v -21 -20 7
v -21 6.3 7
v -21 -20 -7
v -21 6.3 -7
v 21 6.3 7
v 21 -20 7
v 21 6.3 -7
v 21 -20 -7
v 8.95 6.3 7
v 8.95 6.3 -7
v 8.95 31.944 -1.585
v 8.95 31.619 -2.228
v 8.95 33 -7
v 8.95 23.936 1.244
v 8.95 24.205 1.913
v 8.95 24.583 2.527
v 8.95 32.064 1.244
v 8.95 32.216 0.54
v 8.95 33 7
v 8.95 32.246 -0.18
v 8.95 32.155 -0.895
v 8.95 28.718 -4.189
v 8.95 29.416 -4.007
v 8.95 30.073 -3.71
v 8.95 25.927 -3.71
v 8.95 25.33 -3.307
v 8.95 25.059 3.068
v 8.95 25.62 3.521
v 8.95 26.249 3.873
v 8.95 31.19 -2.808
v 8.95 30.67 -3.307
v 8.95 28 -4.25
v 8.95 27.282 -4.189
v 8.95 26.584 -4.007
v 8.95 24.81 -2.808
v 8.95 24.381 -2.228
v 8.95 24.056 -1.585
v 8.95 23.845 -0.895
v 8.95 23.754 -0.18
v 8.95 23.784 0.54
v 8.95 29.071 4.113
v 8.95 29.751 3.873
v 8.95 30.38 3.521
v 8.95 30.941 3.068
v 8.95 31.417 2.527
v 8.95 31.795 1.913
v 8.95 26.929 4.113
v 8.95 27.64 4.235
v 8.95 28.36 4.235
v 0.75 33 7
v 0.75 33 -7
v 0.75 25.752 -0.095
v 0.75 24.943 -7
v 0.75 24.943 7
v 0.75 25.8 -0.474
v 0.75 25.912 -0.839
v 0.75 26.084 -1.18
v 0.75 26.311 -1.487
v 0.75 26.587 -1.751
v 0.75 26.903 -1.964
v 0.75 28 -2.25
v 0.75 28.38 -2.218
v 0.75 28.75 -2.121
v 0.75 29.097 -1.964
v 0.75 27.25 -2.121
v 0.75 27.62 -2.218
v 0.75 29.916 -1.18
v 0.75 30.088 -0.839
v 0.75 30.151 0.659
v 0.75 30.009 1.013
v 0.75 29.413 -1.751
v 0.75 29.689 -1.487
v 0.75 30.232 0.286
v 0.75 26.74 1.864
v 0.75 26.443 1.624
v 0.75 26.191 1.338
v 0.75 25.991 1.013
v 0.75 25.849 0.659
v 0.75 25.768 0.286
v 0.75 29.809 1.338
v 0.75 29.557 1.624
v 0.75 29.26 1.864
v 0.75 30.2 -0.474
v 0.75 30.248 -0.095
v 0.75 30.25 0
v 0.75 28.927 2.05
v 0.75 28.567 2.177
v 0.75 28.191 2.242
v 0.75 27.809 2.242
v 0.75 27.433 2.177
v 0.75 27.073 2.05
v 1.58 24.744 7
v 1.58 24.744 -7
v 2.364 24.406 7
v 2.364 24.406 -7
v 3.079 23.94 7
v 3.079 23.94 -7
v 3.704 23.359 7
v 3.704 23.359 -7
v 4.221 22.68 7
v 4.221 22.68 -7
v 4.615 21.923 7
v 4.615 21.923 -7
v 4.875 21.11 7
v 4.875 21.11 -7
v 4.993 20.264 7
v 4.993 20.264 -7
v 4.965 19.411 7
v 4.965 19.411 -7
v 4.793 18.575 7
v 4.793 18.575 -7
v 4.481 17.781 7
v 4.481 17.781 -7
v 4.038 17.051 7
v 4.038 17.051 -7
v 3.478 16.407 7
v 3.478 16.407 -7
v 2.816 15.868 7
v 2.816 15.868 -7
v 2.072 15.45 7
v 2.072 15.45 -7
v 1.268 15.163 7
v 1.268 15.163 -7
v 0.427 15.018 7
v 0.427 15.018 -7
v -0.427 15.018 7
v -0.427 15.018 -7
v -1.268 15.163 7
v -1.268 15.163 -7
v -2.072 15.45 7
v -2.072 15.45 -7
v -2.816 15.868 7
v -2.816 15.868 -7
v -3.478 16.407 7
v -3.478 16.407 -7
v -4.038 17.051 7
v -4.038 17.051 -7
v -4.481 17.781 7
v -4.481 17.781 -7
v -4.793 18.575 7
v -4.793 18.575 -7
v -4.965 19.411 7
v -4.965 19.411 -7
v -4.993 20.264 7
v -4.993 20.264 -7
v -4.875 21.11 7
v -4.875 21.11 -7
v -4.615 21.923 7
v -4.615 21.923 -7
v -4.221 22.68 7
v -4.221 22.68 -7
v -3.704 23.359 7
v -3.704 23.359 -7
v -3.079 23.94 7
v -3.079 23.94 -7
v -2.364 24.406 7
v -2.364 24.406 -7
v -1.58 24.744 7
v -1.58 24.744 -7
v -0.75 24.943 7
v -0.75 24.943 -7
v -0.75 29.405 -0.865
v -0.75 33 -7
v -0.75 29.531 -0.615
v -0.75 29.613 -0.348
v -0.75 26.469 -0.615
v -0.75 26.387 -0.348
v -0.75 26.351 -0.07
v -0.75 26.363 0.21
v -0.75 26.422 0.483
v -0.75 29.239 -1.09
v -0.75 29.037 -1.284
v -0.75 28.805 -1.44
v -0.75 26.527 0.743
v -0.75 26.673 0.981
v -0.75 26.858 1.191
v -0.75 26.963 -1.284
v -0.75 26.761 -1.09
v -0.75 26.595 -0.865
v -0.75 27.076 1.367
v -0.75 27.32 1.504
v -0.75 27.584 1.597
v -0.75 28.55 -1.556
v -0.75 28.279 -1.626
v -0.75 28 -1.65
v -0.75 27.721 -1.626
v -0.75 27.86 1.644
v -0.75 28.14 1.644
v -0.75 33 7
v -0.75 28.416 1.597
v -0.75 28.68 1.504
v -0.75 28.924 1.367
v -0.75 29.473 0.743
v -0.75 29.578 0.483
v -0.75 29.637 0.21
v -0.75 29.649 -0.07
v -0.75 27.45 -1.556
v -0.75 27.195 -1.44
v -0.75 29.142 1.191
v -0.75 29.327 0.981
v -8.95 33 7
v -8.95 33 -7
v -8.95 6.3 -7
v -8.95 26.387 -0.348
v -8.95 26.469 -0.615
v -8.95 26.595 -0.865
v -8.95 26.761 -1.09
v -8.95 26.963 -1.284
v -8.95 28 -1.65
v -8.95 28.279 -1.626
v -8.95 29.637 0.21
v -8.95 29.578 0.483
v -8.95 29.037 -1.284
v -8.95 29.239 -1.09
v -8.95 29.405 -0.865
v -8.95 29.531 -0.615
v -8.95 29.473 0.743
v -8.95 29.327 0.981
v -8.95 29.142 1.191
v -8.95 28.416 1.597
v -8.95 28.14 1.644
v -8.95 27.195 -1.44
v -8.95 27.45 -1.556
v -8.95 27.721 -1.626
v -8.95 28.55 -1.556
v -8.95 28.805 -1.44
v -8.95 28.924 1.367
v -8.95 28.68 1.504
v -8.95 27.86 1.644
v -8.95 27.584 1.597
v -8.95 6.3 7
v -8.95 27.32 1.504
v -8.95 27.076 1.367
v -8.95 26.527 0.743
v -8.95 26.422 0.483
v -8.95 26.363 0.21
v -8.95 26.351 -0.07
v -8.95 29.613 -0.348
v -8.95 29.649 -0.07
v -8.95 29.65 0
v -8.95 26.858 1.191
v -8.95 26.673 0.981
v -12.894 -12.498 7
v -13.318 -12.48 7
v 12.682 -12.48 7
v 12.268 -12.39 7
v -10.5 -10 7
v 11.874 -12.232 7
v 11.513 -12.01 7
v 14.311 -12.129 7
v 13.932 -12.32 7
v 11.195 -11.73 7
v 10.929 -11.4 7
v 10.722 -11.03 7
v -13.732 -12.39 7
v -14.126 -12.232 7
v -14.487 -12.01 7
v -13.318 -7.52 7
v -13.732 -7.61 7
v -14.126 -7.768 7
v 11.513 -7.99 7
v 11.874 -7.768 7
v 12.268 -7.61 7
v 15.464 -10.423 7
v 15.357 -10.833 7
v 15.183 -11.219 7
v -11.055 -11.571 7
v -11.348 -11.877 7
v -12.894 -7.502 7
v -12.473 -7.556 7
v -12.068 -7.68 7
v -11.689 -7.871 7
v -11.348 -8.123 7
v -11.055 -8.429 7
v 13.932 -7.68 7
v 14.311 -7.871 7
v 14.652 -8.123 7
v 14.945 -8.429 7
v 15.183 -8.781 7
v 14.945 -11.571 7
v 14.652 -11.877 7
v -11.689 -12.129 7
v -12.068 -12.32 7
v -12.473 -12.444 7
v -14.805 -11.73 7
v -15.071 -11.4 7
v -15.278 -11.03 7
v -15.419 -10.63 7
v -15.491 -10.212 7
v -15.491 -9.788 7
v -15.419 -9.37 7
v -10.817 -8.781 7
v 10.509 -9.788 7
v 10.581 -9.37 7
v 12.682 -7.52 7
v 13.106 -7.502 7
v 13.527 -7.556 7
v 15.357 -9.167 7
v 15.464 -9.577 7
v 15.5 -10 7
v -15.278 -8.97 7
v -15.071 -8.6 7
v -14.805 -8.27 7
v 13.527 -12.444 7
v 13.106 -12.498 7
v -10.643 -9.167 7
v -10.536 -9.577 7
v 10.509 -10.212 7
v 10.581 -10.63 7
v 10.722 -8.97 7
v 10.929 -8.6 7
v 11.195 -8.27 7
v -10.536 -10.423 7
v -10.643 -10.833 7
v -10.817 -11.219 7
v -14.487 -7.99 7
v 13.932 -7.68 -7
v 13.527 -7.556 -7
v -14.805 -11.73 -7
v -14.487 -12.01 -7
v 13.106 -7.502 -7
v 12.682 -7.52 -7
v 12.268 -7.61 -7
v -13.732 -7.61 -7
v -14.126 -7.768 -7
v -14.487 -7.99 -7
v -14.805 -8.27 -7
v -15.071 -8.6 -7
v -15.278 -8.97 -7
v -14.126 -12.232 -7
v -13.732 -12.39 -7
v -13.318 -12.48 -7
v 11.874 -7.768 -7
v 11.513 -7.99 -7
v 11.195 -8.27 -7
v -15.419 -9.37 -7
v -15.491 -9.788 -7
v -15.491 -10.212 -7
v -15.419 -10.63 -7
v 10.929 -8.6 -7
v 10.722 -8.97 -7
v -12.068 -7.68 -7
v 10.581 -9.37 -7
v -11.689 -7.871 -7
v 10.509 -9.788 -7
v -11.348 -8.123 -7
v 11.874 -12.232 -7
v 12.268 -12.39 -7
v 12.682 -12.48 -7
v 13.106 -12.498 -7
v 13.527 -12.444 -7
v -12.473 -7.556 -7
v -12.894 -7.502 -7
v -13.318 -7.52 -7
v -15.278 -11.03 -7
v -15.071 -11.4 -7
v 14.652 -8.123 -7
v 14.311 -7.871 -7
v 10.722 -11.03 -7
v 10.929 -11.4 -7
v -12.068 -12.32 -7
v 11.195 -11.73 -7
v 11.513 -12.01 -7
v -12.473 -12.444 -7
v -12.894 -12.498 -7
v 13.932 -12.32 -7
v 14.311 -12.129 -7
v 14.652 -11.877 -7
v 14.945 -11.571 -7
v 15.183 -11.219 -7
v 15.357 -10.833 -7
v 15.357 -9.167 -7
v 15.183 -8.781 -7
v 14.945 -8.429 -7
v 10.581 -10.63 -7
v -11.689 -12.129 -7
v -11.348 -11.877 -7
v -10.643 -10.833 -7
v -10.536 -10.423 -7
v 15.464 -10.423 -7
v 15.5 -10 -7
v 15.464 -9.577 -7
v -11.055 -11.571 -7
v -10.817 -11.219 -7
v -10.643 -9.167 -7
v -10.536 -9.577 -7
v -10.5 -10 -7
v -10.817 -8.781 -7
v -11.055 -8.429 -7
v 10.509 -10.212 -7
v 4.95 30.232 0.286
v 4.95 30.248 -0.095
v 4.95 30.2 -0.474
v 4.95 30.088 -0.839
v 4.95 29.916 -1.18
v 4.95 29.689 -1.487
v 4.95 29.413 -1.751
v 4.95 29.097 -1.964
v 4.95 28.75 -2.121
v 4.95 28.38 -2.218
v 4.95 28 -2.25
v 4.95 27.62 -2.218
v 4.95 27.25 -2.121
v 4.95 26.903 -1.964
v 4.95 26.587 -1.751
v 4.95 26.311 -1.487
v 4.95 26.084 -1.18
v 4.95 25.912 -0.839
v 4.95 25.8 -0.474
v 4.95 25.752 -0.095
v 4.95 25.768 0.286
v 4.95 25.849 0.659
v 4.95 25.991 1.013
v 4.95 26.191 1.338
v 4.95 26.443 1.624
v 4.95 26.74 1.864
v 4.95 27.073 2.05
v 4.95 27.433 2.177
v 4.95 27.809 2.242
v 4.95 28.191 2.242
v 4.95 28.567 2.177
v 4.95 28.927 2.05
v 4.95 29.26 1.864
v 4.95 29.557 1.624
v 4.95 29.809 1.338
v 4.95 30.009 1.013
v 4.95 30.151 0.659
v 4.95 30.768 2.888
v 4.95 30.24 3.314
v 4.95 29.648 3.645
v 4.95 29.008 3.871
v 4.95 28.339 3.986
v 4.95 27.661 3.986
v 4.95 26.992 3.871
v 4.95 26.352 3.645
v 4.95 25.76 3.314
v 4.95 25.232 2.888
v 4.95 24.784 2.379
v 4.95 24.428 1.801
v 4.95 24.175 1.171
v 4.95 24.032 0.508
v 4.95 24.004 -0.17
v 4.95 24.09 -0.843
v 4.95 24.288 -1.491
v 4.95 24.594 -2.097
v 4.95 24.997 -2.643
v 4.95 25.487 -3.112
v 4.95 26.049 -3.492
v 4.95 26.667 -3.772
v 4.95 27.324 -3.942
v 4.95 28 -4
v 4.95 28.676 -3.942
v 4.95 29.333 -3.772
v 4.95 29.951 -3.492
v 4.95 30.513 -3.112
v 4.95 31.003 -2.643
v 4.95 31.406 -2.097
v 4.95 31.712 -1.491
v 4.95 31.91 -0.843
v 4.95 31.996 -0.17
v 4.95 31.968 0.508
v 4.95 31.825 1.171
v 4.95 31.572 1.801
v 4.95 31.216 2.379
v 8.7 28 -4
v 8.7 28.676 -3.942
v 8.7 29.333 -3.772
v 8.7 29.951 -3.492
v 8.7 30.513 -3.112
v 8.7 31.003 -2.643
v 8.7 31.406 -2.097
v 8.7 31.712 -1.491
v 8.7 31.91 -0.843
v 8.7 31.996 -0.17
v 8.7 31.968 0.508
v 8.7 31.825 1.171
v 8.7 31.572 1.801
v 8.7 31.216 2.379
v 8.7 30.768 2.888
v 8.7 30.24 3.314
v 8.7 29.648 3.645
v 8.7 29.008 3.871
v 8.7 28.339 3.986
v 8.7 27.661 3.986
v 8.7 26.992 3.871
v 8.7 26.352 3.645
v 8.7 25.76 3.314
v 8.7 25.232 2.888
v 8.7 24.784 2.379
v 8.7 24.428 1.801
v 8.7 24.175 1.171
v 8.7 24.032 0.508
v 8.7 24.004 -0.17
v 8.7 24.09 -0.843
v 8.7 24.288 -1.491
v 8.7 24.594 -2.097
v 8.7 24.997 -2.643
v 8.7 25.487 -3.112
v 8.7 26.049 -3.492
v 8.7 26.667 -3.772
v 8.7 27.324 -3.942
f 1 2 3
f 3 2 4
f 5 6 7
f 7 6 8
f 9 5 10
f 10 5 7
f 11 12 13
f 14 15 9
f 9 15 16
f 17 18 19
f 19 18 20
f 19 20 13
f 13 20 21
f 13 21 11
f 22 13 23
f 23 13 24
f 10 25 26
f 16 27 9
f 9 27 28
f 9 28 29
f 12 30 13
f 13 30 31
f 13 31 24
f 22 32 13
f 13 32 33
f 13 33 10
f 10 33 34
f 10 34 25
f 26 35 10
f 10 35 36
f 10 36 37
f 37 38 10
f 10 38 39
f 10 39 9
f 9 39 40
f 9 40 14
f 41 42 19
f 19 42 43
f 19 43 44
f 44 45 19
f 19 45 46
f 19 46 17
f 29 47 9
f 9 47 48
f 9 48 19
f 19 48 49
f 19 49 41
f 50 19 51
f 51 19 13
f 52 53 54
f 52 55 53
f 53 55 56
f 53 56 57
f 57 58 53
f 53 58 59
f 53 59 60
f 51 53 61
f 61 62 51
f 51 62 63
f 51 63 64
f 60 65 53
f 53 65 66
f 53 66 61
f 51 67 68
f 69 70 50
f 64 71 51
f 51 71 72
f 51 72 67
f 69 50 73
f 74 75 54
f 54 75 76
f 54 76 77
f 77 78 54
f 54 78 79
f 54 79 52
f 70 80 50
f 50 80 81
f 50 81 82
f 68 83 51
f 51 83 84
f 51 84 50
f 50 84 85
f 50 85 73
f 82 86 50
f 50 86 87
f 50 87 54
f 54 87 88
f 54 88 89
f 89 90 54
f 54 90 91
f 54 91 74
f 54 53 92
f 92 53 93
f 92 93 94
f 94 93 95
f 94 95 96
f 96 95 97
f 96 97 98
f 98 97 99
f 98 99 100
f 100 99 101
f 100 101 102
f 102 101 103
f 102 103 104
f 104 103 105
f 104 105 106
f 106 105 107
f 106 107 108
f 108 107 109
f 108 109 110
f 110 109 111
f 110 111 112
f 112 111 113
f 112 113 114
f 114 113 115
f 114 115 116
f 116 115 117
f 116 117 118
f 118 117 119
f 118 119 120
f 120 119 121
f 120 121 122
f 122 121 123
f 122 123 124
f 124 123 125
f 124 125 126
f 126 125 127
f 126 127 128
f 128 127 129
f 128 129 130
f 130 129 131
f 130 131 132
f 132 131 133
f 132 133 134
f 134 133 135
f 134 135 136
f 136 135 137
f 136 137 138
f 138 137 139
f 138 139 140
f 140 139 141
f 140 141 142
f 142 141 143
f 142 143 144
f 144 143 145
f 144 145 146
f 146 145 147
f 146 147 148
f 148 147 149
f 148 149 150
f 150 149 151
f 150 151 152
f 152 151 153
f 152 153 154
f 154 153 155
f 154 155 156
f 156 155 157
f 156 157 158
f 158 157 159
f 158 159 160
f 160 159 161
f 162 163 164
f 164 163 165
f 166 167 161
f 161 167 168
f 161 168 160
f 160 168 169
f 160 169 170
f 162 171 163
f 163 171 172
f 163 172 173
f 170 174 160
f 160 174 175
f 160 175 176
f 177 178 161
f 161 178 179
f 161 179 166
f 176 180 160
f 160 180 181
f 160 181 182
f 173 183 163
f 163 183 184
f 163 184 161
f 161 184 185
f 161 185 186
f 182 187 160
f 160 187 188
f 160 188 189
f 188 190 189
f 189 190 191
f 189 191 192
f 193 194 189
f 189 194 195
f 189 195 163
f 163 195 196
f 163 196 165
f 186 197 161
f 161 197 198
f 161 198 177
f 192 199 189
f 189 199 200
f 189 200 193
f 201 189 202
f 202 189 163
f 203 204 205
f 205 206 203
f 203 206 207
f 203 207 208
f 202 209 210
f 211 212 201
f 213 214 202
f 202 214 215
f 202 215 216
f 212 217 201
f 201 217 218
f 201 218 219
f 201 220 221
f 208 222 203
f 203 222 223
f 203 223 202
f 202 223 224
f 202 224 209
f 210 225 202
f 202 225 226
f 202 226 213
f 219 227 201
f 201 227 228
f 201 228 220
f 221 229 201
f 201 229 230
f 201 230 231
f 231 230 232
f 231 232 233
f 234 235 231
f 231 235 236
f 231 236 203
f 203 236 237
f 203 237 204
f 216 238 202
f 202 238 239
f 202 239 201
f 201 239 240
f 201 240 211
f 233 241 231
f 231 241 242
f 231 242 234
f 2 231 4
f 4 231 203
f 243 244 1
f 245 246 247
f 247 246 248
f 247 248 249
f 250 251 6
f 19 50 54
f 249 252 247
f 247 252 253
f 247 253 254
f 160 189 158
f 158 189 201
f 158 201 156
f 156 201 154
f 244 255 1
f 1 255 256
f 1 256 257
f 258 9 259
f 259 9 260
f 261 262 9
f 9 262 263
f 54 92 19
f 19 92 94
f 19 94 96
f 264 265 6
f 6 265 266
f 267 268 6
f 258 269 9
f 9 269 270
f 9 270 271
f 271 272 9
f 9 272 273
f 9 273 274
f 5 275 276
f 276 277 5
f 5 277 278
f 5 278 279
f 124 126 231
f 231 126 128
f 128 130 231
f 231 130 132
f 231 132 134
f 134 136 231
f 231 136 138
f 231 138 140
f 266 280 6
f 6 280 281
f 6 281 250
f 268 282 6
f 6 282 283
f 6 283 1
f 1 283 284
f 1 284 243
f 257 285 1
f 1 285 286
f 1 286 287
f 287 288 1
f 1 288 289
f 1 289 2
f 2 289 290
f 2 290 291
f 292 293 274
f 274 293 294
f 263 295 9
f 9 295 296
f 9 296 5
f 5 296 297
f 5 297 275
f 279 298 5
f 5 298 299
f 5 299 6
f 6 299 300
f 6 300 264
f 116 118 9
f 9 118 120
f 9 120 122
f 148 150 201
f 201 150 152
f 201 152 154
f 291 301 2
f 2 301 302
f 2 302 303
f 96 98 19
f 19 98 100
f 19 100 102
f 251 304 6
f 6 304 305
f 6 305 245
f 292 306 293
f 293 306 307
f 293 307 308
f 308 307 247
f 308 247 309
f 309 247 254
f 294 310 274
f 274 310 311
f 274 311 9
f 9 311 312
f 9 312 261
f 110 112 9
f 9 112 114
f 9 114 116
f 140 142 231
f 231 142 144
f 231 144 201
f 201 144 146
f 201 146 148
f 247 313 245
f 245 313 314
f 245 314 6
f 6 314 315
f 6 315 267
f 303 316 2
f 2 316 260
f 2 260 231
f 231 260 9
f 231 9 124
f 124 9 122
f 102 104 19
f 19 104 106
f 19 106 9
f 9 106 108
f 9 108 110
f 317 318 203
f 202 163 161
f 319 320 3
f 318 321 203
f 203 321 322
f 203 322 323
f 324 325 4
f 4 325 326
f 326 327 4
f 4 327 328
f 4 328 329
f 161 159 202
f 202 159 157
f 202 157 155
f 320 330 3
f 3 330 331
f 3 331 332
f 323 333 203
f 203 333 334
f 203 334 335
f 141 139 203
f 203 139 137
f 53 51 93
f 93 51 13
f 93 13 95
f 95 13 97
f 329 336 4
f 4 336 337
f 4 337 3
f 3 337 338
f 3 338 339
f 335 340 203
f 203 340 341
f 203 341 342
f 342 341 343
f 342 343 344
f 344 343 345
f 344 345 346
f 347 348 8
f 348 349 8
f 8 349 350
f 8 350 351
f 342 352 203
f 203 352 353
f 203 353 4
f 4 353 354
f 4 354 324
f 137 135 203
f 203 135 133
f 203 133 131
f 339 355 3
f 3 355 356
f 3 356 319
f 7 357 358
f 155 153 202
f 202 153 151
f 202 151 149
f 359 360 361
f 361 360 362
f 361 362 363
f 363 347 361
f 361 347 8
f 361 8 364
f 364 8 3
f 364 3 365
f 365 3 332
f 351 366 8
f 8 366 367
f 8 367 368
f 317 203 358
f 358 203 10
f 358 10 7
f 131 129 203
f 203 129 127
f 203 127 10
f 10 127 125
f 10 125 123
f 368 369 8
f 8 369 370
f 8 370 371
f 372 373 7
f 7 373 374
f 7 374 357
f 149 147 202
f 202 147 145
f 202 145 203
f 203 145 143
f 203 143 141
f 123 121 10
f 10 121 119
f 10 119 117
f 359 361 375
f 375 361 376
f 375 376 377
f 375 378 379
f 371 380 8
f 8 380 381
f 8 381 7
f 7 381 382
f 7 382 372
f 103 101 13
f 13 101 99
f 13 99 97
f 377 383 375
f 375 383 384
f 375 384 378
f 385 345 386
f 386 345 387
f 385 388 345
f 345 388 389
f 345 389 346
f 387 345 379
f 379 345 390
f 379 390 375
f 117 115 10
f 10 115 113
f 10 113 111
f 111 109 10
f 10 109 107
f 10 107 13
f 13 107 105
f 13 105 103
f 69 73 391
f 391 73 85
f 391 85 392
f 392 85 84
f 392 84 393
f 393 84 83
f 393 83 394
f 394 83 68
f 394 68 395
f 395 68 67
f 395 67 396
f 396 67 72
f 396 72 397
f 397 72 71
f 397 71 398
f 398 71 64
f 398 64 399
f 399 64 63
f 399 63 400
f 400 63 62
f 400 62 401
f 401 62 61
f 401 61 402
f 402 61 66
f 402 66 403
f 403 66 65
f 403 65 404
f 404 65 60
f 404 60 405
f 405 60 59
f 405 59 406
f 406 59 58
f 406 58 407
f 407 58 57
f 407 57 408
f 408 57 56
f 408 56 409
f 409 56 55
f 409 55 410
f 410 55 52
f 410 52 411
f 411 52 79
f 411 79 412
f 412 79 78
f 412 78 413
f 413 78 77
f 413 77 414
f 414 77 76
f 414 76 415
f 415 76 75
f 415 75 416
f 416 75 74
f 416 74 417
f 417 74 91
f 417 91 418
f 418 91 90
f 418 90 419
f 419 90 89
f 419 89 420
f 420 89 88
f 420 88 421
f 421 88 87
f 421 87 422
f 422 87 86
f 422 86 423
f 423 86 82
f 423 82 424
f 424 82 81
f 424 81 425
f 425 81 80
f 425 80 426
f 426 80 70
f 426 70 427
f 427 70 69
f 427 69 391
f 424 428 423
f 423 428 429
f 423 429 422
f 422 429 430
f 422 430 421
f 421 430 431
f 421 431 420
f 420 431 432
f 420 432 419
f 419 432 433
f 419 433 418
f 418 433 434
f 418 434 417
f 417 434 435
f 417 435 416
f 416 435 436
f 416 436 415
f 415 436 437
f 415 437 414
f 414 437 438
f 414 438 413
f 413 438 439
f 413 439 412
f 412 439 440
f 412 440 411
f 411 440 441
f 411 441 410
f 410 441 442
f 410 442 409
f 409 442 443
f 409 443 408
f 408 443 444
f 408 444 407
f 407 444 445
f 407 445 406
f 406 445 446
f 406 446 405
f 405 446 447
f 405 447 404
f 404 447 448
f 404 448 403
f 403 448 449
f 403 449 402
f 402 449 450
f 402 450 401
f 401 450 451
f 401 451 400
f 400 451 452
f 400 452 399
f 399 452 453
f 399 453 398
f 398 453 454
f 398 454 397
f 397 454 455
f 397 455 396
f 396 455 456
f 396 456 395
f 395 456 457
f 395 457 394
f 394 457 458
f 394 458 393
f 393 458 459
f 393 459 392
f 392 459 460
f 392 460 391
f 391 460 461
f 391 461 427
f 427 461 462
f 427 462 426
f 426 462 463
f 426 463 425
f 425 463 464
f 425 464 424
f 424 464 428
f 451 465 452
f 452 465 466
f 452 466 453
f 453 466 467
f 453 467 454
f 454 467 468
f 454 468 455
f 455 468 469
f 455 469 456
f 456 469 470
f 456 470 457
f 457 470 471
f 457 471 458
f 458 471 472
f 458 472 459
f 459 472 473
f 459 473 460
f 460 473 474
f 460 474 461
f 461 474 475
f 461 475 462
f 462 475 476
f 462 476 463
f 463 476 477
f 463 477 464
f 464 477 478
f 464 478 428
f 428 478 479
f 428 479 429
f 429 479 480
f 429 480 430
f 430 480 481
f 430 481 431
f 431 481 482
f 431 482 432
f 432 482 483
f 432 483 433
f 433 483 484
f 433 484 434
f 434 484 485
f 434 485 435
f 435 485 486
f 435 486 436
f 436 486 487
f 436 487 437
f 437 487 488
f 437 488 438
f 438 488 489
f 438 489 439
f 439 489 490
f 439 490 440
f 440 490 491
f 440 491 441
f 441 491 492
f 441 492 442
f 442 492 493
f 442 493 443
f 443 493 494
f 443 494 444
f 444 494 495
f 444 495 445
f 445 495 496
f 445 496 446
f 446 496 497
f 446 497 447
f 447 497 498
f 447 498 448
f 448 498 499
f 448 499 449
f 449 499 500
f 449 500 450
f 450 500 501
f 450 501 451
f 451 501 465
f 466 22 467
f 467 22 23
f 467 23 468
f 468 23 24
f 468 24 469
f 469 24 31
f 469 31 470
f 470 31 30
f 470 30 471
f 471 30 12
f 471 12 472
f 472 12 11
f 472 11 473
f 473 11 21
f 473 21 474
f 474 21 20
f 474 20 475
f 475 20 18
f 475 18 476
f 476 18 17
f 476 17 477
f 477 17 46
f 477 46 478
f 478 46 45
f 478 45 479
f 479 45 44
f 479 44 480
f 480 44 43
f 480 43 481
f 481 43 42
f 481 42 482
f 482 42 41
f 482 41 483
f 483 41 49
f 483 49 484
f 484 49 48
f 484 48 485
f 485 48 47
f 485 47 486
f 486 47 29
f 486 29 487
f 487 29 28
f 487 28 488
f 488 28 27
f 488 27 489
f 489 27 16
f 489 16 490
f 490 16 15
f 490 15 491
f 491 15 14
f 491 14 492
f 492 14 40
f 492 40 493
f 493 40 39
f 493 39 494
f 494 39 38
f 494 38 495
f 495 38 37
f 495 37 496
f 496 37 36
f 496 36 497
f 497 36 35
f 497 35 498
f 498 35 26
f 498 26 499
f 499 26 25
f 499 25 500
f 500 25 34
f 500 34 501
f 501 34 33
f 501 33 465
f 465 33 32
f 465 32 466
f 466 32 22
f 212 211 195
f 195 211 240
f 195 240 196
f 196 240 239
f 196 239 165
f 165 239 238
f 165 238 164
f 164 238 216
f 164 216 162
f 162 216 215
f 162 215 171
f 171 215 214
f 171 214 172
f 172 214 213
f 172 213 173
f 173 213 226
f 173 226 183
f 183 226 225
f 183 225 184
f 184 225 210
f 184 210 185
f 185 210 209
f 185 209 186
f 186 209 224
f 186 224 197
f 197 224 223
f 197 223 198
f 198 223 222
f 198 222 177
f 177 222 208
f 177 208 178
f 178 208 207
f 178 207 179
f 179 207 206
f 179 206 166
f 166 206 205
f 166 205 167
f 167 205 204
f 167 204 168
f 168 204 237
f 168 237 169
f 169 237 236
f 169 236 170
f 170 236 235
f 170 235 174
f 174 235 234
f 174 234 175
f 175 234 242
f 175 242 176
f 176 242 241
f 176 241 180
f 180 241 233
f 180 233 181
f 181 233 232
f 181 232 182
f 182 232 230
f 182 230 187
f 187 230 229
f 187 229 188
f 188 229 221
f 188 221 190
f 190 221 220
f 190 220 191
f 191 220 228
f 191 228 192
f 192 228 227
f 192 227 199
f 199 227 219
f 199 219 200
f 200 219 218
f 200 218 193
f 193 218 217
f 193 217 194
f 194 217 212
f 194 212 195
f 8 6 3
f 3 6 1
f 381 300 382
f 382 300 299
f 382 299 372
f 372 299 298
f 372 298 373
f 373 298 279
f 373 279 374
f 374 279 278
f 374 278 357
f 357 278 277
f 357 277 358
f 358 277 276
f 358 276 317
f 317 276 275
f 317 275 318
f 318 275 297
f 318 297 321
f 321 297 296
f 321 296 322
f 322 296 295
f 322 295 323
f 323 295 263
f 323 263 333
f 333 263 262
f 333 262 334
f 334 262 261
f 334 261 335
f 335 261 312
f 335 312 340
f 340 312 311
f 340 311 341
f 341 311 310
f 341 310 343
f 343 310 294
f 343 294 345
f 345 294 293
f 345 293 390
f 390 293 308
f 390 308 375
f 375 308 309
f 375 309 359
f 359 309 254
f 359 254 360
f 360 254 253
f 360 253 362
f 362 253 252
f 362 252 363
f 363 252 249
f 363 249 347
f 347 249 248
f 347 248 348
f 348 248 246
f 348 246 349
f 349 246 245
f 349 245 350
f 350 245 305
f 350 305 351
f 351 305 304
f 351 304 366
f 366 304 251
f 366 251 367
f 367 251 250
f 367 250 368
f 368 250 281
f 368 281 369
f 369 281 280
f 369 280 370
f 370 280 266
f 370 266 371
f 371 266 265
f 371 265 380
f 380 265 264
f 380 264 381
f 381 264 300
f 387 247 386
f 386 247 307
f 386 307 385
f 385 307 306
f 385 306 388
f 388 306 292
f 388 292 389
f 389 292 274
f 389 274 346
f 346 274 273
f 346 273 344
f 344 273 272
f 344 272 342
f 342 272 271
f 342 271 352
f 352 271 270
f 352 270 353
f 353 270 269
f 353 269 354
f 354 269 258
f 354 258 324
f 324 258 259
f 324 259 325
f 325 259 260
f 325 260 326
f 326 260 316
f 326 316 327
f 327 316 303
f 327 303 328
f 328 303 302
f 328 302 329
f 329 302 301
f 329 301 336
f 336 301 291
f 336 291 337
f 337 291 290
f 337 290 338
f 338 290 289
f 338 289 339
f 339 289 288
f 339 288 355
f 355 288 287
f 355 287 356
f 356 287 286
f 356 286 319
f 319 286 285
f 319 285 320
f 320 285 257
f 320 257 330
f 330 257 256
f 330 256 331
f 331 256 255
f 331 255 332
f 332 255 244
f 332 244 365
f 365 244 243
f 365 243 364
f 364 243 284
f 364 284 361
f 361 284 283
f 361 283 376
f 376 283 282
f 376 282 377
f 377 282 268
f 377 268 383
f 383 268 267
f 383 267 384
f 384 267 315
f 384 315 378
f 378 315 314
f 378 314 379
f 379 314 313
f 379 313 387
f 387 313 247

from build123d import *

# Parameters (mm, degrees)
BOSS_EXTRUDE1_DEPTH   = 7
M4X0_7_TAPPED_HOLE1_D = 3.3
SKETCH7_W             = 42
SKETCH7_H             = 14
BOSS_EXTRUDE2_DEPTH   = 20
SKETCH8_R             = 2.5
CUT_EXTRUDE2_DEPTH    = 28


with BuildPart() as part:
    # Sketch1 → Boss-Extrude1 (new, symmetric)
    with BuildSketch(Plane.XY):
        with BuildLine():
            Line((-21, 6.3), (-8.95, 6.3))
            Line((-8.95, 6.3), (-8.95, 33))
            Line((-8.95, 33), (-0.75, 33))
            Line((-0.75, 33), (-0.75, 24.943429983))
            ThreePointArc((-0.75, 24.943429983), (0, 15), (0.75, 24.943429983))
            Line((0.75, 24.943429983), (0.75, 33))
            Line((0.75, 33), (8.95, 33))
            Line((8.95, 33), (8.95, 6.3))
            Line((8.95, 6.3), (21, 6.3))
            Line((21, 6.3), (21, 0))
            Line((21, 0), (-21, 0))
            Line((-21, 0), (-21, 6.3))
        make_face()
    extrude(amount=BOSS_EXTRUDE1_DEPTH, both=True)

    # Sketch4 → CBORE for M4 SHCS2 (revolve, cut)
    with BuildSketch(Plane(origin=(8.95, 28, 0), x_dir=(0, 0, -1), z_dir=(0, 1, 0))):
        Polygon((0, 0), (0, 8.2), (2.25, 8.2), (2.25, 4), (4, 4), (4, 0.25), (4.25, 0), align=None)
    revolve(axis=Axis((15.3, 28, 0), (-1, 0, 0)), mode=Mode.SUBTRACT)

    # M4x0.7 Tapped Hole1 (through all)
    with Locations(Plane(origin=(-0.75, 0, 0), x_dir=(0, 0, -1), z_dir=(1, 0, 0))):
        with Locations((0, 28)):
            Hole(M4X0_7_TAPPED_HOLE1_D / 2)

    # Sketch7 → Boss-Extrude2 (add)
    with BuildSketch(Plane.XZ):
        Rectangle(SKETCH7_W, SKETCH7_H)
    extrude(amount=BOSS_EXTRUDE2_DEPTH)

    # Sketch8 → Cut-Extrude2 (cut)
    with BuildSketch(Plane.XY.offset(7)):
        with Locations((-13, -10)):
            Circle(SKETCH8_R)
        with Locations((13, -10)):
            Circle(SKETCH8_R)
    extrude(amount=-CUT_EXTRUDE2_DEPTH, mode=Mode.SUBTRACT)


solid = part.part
